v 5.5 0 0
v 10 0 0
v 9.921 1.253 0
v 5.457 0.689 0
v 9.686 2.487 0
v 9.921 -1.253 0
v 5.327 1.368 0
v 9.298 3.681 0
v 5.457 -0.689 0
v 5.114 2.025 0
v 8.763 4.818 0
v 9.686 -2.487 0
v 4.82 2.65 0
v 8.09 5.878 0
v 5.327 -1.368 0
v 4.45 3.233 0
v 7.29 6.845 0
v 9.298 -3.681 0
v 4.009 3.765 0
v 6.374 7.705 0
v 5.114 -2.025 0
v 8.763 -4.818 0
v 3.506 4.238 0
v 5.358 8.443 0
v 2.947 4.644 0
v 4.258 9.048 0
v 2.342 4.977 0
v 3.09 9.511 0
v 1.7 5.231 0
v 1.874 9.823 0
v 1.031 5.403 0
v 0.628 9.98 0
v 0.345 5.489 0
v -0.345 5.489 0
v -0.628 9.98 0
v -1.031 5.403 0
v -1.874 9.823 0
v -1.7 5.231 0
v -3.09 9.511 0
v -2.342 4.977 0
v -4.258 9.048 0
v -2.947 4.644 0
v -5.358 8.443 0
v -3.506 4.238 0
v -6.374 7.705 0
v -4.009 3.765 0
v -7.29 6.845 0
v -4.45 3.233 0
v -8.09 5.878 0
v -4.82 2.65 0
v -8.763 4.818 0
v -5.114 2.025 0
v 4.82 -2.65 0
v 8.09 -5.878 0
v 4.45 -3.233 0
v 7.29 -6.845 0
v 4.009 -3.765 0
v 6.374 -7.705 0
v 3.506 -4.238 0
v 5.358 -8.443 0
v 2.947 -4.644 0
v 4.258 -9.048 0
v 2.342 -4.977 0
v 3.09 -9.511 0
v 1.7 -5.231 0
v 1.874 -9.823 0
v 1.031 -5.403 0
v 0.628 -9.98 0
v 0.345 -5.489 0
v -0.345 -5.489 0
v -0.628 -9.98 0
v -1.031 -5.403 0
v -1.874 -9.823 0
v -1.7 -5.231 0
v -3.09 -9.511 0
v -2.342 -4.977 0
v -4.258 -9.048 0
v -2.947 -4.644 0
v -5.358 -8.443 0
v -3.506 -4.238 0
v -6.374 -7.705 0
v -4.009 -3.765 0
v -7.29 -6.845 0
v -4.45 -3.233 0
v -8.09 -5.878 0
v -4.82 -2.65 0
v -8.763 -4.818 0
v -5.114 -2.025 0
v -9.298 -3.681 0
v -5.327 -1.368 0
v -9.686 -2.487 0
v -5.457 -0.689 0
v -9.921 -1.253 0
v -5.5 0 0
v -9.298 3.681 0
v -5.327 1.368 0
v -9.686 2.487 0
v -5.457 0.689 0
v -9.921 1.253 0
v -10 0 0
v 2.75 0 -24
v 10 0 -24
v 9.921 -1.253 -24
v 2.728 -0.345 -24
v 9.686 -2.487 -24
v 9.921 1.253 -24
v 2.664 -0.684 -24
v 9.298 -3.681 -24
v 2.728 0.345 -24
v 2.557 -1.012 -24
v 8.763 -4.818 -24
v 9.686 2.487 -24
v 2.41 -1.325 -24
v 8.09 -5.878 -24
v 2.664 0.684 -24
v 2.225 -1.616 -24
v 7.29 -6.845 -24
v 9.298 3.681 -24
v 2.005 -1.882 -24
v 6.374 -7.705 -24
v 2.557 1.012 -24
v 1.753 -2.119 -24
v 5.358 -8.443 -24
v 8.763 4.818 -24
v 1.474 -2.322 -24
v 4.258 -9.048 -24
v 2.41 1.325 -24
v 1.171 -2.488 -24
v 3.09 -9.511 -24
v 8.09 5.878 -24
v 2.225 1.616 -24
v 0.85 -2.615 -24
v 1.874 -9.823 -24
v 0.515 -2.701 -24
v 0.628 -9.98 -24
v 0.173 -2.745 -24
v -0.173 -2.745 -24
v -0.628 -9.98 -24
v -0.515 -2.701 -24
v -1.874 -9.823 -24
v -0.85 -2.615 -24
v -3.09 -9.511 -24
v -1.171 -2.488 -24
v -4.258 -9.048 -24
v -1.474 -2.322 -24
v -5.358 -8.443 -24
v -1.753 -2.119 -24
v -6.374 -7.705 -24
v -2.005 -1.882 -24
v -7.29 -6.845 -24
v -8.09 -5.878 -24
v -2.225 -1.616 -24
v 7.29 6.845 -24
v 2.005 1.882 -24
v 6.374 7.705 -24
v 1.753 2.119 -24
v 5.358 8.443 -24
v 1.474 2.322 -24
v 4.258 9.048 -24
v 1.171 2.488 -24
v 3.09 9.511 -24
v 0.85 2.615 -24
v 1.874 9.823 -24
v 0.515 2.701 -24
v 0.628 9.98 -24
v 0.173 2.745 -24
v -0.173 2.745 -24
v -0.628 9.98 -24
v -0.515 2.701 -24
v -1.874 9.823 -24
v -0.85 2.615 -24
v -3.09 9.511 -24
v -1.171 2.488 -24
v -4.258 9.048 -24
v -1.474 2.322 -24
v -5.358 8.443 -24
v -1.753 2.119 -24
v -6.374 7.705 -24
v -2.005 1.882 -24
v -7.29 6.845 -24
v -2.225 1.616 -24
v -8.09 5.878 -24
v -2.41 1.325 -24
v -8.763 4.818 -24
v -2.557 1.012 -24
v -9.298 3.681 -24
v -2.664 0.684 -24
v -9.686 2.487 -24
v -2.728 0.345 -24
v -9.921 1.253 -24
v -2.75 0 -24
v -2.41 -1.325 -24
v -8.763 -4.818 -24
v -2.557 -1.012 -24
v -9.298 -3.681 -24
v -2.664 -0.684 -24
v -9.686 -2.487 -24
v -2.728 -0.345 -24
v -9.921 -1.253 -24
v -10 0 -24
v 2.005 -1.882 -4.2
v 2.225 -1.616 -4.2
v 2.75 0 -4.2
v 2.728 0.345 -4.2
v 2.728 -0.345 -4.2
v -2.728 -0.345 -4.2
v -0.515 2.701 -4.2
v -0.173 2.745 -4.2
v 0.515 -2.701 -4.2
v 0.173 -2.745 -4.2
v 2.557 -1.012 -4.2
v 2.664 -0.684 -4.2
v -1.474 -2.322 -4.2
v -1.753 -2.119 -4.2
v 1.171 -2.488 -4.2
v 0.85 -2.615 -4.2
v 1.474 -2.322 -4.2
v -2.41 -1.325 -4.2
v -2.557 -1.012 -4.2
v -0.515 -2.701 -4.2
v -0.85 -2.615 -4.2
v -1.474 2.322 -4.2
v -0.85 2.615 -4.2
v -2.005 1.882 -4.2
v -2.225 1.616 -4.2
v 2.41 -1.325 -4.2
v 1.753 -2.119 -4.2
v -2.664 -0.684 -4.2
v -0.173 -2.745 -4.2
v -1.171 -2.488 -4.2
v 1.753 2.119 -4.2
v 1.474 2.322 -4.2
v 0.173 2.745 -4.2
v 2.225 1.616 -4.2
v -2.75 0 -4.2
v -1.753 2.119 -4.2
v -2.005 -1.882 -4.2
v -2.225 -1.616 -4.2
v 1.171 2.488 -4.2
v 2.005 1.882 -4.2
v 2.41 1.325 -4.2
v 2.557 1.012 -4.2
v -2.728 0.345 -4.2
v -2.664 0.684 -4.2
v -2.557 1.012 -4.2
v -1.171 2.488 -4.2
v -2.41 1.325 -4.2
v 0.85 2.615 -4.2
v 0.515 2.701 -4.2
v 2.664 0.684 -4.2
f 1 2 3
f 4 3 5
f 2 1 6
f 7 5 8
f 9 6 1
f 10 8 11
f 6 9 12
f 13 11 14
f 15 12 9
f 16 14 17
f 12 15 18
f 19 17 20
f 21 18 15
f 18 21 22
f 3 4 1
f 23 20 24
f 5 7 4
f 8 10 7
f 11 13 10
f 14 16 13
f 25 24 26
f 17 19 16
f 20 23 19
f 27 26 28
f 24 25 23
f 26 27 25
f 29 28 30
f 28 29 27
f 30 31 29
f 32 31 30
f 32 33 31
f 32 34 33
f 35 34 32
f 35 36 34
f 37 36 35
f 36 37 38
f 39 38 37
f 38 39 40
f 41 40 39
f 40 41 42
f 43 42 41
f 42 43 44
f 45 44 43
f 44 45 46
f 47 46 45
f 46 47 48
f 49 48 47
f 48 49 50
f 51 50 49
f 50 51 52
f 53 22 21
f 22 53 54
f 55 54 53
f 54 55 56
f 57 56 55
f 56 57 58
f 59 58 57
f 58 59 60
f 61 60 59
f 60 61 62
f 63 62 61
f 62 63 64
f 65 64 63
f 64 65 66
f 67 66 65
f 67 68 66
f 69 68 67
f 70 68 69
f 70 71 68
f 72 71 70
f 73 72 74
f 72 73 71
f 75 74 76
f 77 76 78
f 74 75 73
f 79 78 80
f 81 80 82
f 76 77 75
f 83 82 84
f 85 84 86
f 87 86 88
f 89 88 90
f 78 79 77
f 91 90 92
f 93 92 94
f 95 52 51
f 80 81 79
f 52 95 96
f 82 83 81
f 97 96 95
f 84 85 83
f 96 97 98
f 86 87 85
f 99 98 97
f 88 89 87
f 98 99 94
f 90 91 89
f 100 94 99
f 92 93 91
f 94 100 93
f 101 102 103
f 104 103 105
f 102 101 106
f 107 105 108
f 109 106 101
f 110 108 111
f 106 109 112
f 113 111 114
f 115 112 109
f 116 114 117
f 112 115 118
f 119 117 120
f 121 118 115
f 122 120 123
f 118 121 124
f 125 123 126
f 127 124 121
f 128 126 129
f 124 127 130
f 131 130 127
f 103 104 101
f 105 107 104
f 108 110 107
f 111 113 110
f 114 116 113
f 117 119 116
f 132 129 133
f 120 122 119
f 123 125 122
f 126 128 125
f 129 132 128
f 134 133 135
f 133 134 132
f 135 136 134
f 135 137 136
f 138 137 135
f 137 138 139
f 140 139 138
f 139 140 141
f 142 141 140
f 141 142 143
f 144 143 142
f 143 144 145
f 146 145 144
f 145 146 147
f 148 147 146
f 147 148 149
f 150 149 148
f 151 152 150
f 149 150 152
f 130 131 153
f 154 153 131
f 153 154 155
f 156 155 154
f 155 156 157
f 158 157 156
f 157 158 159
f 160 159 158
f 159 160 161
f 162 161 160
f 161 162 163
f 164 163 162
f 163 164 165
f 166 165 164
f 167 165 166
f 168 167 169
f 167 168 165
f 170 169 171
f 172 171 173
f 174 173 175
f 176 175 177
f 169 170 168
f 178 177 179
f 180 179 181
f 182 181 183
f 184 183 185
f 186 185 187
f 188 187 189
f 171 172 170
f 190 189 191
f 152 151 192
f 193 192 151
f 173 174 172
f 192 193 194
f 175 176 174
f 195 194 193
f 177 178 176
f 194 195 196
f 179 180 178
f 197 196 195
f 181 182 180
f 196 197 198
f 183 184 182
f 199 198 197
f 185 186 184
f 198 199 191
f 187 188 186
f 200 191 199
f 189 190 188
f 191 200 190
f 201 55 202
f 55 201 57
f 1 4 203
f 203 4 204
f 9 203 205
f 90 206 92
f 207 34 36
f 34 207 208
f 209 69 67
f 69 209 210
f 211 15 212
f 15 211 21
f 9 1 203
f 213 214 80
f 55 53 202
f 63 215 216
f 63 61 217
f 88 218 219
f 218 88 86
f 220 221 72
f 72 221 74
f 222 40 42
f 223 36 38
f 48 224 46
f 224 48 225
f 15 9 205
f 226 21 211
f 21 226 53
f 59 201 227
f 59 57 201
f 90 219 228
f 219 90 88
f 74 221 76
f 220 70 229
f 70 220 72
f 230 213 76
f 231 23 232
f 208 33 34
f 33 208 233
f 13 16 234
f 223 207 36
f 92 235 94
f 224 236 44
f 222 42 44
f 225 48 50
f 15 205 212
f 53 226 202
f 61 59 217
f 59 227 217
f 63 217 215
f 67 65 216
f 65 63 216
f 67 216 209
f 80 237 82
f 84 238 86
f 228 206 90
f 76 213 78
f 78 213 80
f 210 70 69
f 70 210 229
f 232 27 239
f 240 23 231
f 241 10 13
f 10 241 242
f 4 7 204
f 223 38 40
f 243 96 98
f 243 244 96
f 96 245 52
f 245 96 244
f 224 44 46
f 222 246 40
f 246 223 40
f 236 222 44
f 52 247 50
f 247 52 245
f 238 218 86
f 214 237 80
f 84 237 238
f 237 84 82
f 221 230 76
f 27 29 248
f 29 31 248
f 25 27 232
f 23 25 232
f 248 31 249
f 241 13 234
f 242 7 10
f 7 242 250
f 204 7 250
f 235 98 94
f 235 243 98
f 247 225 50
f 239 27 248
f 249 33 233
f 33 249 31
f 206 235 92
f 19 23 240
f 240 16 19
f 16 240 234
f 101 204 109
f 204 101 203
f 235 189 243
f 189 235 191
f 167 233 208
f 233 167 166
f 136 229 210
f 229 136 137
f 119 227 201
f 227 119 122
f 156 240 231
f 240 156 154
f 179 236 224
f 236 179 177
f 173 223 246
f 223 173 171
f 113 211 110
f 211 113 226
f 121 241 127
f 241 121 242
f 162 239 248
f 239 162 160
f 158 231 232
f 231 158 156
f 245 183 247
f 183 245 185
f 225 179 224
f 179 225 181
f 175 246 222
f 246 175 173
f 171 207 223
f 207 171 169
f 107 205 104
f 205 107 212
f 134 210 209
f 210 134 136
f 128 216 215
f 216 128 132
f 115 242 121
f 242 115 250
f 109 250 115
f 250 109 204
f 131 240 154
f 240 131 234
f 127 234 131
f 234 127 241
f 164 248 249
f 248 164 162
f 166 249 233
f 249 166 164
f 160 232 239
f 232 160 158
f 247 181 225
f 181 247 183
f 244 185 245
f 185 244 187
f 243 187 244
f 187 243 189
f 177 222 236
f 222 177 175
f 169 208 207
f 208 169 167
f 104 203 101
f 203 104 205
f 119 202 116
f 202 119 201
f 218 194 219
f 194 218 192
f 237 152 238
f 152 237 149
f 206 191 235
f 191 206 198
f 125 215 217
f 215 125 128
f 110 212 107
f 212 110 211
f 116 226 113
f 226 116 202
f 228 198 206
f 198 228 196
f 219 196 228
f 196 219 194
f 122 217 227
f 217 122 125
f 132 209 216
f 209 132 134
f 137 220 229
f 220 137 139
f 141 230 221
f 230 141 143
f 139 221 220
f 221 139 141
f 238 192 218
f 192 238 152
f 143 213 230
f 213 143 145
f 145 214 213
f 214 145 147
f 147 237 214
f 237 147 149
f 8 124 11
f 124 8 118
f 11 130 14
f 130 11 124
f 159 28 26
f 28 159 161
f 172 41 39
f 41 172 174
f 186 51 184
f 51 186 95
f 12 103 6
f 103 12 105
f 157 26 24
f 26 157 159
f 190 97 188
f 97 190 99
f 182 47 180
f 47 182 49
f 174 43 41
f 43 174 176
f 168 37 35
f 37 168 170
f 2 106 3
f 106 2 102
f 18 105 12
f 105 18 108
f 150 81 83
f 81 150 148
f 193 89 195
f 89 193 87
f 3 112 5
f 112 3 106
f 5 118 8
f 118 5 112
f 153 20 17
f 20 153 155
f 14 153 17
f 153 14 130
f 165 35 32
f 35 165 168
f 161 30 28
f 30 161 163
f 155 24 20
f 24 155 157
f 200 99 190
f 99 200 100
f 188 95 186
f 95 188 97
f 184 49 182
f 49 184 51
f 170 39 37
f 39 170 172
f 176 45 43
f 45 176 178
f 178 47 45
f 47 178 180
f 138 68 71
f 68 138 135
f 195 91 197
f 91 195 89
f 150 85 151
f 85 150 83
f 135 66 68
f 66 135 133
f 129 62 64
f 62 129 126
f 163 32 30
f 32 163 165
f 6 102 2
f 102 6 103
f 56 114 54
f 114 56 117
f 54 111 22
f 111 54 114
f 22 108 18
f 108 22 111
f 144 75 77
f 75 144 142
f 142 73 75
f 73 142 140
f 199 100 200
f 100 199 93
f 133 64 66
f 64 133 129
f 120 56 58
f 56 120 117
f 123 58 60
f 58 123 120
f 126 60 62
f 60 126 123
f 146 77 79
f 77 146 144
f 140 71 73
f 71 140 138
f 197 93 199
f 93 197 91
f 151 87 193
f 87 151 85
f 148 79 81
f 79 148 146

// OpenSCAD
$fn = 50;


difference() {
	union() {
		translate(v = [0, 0, -24.0000000000]) {
			cylinder(h = 24, r = 10.0000000000);
		}
		cylinder(h = 0, r = 13.0000000000);
	}
	union() {
		translate(v = [0, 0, 0]) {
			rotate(a = [0, 0, 0]) {
				difference() {
					union() {
						#translate(v = [0, 0, -24.0000000000]) {
							cylinder(h = 24, r = 2.2500000000);
						}
						#translate(v = [0, 0, -4.2000000000]) {
							cylinder(h = 4.2000000000, r1 = 2.7500000000, r2 = 5.5000000000);
						}
						#translate(v = [0, 0, -24.0000000000]) {
							cylinder(h = 24, r = 2.7500000000);
						}
						#translate(v = [0, 0, -24.0000000000]) {
							cylinder(h = 24, r = 2.2500000000);
						}
					}
					union();
				}
			}
		}
	}
}
